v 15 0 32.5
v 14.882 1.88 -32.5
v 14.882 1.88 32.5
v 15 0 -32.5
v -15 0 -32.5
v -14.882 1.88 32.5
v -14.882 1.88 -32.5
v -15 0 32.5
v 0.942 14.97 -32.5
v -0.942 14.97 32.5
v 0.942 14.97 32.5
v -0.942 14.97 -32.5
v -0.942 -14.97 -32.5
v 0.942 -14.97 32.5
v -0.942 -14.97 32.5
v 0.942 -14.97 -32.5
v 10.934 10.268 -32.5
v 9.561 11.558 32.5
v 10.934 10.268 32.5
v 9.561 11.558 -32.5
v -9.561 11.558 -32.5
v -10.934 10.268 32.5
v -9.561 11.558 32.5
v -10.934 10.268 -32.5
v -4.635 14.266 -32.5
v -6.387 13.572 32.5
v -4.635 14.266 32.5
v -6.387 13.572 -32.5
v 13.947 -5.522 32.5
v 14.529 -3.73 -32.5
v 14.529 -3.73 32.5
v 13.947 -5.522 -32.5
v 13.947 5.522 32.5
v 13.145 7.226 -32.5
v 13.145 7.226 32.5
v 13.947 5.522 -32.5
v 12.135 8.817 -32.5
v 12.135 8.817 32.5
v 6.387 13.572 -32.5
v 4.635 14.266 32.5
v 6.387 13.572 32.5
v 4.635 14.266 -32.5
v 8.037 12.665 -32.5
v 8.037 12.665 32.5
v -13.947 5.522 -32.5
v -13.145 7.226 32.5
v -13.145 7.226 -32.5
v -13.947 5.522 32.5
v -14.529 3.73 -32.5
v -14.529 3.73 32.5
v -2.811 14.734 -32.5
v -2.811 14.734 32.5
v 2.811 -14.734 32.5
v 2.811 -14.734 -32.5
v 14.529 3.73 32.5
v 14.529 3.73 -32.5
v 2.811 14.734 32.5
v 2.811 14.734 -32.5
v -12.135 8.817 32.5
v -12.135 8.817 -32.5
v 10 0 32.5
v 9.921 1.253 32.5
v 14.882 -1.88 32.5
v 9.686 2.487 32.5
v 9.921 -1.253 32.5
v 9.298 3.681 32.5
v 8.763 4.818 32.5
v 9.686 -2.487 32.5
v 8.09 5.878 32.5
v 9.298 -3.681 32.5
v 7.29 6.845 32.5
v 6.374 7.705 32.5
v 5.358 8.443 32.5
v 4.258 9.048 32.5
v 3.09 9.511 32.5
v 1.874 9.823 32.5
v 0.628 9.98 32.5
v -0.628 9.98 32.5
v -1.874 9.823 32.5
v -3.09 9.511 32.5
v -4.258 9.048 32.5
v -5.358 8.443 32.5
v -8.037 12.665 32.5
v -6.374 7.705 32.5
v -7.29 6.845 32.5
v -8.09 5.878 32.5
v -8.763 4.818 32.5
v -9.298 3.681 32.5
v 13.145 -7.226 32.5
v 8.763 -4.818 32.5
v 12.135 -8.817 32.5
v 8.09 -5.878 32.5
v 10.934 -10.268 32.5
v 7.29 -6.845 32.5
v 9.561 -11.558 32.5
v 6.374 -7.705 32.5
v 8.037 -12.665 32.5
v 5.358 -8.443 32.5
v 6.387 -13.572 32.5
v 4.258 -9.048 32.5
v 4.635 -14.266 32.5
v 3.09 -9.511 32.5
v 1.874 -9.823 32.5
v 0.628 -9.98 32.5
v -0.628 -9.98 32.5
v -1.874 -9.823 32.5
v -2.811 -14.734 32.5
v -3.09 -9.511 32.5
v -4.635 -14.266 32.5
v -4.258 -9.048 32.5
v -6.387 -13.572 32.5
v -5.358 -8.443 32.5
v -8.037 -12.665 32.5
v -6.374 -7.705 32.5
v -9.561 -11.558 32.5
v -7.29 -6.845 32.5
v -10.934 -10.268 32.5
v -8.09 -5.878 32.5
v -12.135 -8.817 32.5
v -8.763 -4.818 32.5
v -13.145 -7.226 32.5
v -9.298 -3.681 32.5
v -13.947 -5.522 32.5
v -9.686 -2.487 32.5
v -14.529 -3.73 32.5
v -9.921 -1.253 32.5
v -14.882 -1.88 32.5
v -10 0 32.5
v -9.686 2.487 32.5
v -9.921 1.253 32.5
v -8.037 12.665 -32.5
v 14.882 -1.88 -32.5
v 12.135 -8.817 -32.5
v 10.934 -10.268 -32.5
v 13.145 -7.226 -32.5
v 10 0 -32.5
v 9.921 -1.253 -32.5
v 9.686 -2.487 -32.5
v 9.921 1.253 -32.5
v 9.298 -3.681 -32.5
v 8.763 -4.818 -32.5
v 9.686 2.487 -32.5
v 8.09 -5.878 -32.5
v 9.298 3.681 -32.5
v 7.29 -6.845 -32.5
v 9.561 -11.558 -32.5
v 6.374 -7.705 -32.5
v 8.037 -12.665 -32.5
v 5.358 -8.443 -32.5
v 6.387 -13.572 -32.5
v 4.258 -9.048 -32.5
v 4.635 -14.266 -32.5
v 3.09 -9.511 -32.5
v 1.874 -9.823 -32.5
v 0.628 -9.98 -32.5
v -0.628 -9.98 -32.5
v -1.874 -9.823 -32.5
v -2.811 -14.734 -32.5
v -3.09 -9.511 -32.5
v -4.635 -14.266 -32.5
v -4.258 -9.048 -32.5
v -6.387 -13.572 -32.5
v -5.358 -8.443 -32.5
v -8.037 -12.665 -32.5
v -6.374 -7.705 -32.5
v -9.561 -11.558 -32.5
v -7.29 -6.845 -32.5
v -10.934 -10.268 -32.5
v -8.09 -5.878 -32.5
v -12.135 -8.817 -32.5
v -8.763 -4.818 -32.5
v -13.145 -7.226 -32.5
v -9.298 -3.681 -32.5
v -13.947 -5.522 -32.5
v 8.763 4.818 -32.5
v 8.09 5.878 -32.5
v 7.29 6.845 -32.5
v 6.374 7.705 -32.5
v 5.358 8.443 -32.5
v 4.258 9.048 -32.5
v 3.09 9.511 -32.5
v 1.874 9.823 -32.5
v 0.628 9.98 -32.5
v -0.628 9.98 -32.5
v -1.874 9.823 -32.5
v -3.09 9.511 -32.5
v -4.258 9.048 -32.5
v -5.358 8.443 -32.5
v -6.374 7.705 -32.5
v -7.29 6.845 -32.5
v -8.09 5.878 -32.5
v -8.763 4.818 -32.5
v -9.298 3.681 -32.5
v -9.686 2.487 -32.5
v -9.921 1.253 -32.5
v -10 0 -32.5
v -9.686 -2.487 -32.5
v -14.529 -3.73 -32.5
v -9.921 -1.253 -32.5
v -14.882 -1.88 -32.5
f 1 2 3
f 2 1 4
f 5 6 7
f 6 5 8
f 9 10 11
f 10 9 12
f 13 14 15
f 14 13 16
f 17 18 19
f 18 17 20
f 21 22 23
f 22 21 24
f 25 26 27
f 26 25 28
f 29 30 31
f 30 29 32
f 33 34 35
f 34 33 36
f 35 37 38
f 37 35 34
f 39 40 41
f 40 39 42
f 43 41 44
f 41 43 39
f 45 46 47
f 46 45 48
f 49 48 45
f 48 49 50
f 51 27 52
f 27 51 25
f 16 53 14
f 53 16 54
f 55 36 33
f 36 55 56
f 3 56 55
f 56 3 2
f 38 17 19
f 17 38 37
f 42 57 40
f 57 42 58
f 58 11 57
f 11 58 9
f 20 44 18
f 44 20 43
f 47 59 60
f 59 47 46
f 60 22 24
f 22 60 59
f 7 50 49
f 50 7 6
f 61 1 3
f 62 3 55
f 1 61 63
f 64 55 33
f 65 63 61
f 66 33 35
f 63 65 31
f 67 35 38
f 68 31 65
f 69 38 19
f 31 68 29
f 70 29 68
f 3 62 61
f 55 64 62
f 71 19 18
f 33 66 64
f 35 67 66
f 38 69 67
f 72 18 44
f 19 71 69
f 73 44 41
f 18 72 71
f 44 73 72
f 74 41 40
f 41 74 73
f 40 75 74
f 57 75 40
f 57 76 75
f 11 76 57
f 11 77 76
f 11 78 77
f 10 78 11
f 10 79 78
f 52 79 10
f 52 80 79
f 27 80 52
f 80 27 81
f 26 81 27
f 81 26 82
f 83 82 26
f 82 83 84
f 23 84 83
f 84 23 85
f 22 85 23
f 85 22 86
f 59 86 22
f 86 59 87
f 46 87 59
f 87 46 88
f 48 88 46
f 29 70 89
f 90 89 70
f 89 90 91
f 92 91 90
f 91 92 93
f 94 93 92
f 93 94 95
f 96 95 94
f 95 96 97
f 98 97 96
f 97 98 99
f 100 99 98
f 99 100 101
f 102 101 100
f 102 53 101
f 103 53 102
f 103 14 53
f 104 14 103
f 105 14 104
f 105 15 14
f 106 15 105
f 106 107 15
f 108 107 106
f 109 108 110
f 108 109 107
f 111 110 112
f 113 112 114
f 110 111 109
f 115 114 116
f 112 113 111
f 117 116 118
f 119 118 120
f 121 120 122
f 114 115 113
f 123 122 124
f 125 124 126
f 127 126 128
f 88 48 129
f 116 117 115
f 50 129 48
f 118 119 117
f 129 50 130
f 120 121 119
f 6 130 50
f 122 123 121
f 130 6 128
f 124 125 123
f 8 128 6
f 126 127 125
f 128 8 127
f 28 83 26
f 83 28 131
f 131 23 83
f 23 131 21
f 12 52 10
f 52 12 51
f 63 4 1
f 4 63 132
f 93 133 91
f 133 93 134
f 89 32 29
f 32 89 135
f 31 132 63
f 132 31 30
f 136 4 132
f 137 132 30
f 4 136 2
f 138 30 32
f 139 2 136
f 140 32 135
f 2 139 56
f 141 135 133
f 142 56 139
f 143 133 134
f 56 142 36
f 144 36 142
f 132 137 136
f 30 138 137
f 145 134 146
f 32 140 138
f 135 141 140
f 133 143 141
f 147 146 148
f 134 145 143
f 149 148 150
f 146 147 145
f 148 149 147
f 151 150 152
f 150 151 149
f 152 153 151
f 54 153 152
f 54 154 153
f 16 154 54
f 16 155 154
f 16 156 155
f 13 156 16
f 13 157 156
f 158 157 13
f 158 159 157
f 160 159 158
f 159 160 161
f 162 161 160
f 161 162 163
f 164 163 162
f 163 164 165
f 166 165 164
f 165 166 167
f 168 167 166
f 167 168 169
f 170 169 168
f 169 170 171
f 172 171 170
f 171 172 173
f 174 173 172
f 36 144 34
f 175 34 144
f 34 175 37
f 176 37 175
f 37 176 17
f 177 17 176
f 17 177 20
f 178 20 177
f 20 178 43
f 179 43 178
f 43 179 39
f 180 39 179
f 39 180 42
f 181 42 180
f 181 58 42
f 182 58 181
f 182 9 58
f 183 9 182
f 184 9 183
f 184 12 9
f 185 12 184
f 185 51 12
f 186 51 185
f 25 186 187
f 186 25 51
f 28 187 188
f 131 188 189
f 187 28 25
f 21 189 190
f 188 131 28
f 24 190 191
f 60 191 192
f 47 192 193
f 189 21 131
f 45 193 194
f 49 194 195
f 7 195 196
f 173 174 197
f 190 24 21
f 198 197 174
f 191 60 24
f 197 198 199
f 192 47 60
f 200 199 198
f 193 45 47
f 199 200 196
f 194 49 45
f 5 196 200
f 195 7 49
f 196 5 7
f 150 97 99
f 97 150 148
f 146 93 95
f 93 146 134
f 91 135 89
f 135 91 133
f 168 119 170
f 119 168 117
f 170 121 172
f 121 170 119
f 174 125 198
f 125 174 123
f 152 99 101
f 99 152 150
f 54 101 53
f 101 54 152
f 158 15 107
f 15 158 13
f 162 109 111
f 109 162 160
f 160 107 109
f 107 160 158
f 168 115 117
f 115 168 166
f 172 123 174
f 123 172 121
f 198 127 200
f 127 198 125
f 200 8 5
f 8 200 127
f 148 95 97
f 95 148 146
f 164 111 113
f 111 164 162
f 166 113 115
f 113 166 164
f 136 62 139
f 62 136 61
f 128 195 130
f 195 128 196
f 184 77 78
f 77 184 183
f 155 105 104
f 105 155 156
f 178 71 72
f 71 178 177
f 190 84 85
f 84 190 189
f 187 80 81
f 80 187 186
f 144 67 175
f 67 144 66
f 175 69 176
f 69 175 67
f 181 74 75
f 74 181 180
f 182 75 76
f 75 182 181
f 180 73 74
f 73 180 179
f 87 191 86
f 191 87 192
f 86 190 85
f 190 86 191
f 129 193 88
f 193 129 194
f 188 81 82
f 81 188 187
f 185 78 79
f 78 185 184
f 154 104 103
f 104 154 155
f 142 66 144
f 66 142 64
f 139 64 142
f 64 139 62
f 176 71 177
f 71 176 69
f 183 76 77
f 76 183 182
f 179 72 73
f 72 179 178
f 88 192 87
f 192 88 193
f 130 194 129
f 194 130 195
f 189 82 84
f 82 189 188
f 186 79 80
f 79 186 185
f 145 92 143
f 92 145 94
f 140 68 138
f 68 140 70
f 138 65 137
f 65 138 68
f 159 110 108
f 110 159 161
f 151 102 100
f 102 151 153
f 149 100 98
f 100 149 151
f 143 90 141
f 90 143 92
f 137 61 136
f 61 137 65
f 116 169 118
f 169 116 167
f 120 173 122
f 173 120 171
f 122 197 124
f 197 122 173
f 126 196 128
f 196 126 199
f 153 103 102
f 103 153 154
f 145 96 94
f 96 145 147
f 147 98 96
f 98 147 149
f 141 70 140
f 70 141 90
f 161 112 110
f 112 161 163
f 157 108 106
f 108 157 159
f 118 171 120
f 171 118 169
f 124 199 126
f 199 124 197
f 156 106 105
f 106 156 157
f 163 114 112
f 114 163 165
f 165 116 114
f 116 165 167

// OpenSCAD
$fn = 50;


difference() {
	union() {
		translate(v = [0, 0, -32.5000000000]) {
			cylinder(h = 65, r = 15.0000000000);
		}
	}
	union() {
		translate(v = [0, 0, -100.0000000000]) {
			cylinder(h = 200, r = 10);
		}
	}
}
